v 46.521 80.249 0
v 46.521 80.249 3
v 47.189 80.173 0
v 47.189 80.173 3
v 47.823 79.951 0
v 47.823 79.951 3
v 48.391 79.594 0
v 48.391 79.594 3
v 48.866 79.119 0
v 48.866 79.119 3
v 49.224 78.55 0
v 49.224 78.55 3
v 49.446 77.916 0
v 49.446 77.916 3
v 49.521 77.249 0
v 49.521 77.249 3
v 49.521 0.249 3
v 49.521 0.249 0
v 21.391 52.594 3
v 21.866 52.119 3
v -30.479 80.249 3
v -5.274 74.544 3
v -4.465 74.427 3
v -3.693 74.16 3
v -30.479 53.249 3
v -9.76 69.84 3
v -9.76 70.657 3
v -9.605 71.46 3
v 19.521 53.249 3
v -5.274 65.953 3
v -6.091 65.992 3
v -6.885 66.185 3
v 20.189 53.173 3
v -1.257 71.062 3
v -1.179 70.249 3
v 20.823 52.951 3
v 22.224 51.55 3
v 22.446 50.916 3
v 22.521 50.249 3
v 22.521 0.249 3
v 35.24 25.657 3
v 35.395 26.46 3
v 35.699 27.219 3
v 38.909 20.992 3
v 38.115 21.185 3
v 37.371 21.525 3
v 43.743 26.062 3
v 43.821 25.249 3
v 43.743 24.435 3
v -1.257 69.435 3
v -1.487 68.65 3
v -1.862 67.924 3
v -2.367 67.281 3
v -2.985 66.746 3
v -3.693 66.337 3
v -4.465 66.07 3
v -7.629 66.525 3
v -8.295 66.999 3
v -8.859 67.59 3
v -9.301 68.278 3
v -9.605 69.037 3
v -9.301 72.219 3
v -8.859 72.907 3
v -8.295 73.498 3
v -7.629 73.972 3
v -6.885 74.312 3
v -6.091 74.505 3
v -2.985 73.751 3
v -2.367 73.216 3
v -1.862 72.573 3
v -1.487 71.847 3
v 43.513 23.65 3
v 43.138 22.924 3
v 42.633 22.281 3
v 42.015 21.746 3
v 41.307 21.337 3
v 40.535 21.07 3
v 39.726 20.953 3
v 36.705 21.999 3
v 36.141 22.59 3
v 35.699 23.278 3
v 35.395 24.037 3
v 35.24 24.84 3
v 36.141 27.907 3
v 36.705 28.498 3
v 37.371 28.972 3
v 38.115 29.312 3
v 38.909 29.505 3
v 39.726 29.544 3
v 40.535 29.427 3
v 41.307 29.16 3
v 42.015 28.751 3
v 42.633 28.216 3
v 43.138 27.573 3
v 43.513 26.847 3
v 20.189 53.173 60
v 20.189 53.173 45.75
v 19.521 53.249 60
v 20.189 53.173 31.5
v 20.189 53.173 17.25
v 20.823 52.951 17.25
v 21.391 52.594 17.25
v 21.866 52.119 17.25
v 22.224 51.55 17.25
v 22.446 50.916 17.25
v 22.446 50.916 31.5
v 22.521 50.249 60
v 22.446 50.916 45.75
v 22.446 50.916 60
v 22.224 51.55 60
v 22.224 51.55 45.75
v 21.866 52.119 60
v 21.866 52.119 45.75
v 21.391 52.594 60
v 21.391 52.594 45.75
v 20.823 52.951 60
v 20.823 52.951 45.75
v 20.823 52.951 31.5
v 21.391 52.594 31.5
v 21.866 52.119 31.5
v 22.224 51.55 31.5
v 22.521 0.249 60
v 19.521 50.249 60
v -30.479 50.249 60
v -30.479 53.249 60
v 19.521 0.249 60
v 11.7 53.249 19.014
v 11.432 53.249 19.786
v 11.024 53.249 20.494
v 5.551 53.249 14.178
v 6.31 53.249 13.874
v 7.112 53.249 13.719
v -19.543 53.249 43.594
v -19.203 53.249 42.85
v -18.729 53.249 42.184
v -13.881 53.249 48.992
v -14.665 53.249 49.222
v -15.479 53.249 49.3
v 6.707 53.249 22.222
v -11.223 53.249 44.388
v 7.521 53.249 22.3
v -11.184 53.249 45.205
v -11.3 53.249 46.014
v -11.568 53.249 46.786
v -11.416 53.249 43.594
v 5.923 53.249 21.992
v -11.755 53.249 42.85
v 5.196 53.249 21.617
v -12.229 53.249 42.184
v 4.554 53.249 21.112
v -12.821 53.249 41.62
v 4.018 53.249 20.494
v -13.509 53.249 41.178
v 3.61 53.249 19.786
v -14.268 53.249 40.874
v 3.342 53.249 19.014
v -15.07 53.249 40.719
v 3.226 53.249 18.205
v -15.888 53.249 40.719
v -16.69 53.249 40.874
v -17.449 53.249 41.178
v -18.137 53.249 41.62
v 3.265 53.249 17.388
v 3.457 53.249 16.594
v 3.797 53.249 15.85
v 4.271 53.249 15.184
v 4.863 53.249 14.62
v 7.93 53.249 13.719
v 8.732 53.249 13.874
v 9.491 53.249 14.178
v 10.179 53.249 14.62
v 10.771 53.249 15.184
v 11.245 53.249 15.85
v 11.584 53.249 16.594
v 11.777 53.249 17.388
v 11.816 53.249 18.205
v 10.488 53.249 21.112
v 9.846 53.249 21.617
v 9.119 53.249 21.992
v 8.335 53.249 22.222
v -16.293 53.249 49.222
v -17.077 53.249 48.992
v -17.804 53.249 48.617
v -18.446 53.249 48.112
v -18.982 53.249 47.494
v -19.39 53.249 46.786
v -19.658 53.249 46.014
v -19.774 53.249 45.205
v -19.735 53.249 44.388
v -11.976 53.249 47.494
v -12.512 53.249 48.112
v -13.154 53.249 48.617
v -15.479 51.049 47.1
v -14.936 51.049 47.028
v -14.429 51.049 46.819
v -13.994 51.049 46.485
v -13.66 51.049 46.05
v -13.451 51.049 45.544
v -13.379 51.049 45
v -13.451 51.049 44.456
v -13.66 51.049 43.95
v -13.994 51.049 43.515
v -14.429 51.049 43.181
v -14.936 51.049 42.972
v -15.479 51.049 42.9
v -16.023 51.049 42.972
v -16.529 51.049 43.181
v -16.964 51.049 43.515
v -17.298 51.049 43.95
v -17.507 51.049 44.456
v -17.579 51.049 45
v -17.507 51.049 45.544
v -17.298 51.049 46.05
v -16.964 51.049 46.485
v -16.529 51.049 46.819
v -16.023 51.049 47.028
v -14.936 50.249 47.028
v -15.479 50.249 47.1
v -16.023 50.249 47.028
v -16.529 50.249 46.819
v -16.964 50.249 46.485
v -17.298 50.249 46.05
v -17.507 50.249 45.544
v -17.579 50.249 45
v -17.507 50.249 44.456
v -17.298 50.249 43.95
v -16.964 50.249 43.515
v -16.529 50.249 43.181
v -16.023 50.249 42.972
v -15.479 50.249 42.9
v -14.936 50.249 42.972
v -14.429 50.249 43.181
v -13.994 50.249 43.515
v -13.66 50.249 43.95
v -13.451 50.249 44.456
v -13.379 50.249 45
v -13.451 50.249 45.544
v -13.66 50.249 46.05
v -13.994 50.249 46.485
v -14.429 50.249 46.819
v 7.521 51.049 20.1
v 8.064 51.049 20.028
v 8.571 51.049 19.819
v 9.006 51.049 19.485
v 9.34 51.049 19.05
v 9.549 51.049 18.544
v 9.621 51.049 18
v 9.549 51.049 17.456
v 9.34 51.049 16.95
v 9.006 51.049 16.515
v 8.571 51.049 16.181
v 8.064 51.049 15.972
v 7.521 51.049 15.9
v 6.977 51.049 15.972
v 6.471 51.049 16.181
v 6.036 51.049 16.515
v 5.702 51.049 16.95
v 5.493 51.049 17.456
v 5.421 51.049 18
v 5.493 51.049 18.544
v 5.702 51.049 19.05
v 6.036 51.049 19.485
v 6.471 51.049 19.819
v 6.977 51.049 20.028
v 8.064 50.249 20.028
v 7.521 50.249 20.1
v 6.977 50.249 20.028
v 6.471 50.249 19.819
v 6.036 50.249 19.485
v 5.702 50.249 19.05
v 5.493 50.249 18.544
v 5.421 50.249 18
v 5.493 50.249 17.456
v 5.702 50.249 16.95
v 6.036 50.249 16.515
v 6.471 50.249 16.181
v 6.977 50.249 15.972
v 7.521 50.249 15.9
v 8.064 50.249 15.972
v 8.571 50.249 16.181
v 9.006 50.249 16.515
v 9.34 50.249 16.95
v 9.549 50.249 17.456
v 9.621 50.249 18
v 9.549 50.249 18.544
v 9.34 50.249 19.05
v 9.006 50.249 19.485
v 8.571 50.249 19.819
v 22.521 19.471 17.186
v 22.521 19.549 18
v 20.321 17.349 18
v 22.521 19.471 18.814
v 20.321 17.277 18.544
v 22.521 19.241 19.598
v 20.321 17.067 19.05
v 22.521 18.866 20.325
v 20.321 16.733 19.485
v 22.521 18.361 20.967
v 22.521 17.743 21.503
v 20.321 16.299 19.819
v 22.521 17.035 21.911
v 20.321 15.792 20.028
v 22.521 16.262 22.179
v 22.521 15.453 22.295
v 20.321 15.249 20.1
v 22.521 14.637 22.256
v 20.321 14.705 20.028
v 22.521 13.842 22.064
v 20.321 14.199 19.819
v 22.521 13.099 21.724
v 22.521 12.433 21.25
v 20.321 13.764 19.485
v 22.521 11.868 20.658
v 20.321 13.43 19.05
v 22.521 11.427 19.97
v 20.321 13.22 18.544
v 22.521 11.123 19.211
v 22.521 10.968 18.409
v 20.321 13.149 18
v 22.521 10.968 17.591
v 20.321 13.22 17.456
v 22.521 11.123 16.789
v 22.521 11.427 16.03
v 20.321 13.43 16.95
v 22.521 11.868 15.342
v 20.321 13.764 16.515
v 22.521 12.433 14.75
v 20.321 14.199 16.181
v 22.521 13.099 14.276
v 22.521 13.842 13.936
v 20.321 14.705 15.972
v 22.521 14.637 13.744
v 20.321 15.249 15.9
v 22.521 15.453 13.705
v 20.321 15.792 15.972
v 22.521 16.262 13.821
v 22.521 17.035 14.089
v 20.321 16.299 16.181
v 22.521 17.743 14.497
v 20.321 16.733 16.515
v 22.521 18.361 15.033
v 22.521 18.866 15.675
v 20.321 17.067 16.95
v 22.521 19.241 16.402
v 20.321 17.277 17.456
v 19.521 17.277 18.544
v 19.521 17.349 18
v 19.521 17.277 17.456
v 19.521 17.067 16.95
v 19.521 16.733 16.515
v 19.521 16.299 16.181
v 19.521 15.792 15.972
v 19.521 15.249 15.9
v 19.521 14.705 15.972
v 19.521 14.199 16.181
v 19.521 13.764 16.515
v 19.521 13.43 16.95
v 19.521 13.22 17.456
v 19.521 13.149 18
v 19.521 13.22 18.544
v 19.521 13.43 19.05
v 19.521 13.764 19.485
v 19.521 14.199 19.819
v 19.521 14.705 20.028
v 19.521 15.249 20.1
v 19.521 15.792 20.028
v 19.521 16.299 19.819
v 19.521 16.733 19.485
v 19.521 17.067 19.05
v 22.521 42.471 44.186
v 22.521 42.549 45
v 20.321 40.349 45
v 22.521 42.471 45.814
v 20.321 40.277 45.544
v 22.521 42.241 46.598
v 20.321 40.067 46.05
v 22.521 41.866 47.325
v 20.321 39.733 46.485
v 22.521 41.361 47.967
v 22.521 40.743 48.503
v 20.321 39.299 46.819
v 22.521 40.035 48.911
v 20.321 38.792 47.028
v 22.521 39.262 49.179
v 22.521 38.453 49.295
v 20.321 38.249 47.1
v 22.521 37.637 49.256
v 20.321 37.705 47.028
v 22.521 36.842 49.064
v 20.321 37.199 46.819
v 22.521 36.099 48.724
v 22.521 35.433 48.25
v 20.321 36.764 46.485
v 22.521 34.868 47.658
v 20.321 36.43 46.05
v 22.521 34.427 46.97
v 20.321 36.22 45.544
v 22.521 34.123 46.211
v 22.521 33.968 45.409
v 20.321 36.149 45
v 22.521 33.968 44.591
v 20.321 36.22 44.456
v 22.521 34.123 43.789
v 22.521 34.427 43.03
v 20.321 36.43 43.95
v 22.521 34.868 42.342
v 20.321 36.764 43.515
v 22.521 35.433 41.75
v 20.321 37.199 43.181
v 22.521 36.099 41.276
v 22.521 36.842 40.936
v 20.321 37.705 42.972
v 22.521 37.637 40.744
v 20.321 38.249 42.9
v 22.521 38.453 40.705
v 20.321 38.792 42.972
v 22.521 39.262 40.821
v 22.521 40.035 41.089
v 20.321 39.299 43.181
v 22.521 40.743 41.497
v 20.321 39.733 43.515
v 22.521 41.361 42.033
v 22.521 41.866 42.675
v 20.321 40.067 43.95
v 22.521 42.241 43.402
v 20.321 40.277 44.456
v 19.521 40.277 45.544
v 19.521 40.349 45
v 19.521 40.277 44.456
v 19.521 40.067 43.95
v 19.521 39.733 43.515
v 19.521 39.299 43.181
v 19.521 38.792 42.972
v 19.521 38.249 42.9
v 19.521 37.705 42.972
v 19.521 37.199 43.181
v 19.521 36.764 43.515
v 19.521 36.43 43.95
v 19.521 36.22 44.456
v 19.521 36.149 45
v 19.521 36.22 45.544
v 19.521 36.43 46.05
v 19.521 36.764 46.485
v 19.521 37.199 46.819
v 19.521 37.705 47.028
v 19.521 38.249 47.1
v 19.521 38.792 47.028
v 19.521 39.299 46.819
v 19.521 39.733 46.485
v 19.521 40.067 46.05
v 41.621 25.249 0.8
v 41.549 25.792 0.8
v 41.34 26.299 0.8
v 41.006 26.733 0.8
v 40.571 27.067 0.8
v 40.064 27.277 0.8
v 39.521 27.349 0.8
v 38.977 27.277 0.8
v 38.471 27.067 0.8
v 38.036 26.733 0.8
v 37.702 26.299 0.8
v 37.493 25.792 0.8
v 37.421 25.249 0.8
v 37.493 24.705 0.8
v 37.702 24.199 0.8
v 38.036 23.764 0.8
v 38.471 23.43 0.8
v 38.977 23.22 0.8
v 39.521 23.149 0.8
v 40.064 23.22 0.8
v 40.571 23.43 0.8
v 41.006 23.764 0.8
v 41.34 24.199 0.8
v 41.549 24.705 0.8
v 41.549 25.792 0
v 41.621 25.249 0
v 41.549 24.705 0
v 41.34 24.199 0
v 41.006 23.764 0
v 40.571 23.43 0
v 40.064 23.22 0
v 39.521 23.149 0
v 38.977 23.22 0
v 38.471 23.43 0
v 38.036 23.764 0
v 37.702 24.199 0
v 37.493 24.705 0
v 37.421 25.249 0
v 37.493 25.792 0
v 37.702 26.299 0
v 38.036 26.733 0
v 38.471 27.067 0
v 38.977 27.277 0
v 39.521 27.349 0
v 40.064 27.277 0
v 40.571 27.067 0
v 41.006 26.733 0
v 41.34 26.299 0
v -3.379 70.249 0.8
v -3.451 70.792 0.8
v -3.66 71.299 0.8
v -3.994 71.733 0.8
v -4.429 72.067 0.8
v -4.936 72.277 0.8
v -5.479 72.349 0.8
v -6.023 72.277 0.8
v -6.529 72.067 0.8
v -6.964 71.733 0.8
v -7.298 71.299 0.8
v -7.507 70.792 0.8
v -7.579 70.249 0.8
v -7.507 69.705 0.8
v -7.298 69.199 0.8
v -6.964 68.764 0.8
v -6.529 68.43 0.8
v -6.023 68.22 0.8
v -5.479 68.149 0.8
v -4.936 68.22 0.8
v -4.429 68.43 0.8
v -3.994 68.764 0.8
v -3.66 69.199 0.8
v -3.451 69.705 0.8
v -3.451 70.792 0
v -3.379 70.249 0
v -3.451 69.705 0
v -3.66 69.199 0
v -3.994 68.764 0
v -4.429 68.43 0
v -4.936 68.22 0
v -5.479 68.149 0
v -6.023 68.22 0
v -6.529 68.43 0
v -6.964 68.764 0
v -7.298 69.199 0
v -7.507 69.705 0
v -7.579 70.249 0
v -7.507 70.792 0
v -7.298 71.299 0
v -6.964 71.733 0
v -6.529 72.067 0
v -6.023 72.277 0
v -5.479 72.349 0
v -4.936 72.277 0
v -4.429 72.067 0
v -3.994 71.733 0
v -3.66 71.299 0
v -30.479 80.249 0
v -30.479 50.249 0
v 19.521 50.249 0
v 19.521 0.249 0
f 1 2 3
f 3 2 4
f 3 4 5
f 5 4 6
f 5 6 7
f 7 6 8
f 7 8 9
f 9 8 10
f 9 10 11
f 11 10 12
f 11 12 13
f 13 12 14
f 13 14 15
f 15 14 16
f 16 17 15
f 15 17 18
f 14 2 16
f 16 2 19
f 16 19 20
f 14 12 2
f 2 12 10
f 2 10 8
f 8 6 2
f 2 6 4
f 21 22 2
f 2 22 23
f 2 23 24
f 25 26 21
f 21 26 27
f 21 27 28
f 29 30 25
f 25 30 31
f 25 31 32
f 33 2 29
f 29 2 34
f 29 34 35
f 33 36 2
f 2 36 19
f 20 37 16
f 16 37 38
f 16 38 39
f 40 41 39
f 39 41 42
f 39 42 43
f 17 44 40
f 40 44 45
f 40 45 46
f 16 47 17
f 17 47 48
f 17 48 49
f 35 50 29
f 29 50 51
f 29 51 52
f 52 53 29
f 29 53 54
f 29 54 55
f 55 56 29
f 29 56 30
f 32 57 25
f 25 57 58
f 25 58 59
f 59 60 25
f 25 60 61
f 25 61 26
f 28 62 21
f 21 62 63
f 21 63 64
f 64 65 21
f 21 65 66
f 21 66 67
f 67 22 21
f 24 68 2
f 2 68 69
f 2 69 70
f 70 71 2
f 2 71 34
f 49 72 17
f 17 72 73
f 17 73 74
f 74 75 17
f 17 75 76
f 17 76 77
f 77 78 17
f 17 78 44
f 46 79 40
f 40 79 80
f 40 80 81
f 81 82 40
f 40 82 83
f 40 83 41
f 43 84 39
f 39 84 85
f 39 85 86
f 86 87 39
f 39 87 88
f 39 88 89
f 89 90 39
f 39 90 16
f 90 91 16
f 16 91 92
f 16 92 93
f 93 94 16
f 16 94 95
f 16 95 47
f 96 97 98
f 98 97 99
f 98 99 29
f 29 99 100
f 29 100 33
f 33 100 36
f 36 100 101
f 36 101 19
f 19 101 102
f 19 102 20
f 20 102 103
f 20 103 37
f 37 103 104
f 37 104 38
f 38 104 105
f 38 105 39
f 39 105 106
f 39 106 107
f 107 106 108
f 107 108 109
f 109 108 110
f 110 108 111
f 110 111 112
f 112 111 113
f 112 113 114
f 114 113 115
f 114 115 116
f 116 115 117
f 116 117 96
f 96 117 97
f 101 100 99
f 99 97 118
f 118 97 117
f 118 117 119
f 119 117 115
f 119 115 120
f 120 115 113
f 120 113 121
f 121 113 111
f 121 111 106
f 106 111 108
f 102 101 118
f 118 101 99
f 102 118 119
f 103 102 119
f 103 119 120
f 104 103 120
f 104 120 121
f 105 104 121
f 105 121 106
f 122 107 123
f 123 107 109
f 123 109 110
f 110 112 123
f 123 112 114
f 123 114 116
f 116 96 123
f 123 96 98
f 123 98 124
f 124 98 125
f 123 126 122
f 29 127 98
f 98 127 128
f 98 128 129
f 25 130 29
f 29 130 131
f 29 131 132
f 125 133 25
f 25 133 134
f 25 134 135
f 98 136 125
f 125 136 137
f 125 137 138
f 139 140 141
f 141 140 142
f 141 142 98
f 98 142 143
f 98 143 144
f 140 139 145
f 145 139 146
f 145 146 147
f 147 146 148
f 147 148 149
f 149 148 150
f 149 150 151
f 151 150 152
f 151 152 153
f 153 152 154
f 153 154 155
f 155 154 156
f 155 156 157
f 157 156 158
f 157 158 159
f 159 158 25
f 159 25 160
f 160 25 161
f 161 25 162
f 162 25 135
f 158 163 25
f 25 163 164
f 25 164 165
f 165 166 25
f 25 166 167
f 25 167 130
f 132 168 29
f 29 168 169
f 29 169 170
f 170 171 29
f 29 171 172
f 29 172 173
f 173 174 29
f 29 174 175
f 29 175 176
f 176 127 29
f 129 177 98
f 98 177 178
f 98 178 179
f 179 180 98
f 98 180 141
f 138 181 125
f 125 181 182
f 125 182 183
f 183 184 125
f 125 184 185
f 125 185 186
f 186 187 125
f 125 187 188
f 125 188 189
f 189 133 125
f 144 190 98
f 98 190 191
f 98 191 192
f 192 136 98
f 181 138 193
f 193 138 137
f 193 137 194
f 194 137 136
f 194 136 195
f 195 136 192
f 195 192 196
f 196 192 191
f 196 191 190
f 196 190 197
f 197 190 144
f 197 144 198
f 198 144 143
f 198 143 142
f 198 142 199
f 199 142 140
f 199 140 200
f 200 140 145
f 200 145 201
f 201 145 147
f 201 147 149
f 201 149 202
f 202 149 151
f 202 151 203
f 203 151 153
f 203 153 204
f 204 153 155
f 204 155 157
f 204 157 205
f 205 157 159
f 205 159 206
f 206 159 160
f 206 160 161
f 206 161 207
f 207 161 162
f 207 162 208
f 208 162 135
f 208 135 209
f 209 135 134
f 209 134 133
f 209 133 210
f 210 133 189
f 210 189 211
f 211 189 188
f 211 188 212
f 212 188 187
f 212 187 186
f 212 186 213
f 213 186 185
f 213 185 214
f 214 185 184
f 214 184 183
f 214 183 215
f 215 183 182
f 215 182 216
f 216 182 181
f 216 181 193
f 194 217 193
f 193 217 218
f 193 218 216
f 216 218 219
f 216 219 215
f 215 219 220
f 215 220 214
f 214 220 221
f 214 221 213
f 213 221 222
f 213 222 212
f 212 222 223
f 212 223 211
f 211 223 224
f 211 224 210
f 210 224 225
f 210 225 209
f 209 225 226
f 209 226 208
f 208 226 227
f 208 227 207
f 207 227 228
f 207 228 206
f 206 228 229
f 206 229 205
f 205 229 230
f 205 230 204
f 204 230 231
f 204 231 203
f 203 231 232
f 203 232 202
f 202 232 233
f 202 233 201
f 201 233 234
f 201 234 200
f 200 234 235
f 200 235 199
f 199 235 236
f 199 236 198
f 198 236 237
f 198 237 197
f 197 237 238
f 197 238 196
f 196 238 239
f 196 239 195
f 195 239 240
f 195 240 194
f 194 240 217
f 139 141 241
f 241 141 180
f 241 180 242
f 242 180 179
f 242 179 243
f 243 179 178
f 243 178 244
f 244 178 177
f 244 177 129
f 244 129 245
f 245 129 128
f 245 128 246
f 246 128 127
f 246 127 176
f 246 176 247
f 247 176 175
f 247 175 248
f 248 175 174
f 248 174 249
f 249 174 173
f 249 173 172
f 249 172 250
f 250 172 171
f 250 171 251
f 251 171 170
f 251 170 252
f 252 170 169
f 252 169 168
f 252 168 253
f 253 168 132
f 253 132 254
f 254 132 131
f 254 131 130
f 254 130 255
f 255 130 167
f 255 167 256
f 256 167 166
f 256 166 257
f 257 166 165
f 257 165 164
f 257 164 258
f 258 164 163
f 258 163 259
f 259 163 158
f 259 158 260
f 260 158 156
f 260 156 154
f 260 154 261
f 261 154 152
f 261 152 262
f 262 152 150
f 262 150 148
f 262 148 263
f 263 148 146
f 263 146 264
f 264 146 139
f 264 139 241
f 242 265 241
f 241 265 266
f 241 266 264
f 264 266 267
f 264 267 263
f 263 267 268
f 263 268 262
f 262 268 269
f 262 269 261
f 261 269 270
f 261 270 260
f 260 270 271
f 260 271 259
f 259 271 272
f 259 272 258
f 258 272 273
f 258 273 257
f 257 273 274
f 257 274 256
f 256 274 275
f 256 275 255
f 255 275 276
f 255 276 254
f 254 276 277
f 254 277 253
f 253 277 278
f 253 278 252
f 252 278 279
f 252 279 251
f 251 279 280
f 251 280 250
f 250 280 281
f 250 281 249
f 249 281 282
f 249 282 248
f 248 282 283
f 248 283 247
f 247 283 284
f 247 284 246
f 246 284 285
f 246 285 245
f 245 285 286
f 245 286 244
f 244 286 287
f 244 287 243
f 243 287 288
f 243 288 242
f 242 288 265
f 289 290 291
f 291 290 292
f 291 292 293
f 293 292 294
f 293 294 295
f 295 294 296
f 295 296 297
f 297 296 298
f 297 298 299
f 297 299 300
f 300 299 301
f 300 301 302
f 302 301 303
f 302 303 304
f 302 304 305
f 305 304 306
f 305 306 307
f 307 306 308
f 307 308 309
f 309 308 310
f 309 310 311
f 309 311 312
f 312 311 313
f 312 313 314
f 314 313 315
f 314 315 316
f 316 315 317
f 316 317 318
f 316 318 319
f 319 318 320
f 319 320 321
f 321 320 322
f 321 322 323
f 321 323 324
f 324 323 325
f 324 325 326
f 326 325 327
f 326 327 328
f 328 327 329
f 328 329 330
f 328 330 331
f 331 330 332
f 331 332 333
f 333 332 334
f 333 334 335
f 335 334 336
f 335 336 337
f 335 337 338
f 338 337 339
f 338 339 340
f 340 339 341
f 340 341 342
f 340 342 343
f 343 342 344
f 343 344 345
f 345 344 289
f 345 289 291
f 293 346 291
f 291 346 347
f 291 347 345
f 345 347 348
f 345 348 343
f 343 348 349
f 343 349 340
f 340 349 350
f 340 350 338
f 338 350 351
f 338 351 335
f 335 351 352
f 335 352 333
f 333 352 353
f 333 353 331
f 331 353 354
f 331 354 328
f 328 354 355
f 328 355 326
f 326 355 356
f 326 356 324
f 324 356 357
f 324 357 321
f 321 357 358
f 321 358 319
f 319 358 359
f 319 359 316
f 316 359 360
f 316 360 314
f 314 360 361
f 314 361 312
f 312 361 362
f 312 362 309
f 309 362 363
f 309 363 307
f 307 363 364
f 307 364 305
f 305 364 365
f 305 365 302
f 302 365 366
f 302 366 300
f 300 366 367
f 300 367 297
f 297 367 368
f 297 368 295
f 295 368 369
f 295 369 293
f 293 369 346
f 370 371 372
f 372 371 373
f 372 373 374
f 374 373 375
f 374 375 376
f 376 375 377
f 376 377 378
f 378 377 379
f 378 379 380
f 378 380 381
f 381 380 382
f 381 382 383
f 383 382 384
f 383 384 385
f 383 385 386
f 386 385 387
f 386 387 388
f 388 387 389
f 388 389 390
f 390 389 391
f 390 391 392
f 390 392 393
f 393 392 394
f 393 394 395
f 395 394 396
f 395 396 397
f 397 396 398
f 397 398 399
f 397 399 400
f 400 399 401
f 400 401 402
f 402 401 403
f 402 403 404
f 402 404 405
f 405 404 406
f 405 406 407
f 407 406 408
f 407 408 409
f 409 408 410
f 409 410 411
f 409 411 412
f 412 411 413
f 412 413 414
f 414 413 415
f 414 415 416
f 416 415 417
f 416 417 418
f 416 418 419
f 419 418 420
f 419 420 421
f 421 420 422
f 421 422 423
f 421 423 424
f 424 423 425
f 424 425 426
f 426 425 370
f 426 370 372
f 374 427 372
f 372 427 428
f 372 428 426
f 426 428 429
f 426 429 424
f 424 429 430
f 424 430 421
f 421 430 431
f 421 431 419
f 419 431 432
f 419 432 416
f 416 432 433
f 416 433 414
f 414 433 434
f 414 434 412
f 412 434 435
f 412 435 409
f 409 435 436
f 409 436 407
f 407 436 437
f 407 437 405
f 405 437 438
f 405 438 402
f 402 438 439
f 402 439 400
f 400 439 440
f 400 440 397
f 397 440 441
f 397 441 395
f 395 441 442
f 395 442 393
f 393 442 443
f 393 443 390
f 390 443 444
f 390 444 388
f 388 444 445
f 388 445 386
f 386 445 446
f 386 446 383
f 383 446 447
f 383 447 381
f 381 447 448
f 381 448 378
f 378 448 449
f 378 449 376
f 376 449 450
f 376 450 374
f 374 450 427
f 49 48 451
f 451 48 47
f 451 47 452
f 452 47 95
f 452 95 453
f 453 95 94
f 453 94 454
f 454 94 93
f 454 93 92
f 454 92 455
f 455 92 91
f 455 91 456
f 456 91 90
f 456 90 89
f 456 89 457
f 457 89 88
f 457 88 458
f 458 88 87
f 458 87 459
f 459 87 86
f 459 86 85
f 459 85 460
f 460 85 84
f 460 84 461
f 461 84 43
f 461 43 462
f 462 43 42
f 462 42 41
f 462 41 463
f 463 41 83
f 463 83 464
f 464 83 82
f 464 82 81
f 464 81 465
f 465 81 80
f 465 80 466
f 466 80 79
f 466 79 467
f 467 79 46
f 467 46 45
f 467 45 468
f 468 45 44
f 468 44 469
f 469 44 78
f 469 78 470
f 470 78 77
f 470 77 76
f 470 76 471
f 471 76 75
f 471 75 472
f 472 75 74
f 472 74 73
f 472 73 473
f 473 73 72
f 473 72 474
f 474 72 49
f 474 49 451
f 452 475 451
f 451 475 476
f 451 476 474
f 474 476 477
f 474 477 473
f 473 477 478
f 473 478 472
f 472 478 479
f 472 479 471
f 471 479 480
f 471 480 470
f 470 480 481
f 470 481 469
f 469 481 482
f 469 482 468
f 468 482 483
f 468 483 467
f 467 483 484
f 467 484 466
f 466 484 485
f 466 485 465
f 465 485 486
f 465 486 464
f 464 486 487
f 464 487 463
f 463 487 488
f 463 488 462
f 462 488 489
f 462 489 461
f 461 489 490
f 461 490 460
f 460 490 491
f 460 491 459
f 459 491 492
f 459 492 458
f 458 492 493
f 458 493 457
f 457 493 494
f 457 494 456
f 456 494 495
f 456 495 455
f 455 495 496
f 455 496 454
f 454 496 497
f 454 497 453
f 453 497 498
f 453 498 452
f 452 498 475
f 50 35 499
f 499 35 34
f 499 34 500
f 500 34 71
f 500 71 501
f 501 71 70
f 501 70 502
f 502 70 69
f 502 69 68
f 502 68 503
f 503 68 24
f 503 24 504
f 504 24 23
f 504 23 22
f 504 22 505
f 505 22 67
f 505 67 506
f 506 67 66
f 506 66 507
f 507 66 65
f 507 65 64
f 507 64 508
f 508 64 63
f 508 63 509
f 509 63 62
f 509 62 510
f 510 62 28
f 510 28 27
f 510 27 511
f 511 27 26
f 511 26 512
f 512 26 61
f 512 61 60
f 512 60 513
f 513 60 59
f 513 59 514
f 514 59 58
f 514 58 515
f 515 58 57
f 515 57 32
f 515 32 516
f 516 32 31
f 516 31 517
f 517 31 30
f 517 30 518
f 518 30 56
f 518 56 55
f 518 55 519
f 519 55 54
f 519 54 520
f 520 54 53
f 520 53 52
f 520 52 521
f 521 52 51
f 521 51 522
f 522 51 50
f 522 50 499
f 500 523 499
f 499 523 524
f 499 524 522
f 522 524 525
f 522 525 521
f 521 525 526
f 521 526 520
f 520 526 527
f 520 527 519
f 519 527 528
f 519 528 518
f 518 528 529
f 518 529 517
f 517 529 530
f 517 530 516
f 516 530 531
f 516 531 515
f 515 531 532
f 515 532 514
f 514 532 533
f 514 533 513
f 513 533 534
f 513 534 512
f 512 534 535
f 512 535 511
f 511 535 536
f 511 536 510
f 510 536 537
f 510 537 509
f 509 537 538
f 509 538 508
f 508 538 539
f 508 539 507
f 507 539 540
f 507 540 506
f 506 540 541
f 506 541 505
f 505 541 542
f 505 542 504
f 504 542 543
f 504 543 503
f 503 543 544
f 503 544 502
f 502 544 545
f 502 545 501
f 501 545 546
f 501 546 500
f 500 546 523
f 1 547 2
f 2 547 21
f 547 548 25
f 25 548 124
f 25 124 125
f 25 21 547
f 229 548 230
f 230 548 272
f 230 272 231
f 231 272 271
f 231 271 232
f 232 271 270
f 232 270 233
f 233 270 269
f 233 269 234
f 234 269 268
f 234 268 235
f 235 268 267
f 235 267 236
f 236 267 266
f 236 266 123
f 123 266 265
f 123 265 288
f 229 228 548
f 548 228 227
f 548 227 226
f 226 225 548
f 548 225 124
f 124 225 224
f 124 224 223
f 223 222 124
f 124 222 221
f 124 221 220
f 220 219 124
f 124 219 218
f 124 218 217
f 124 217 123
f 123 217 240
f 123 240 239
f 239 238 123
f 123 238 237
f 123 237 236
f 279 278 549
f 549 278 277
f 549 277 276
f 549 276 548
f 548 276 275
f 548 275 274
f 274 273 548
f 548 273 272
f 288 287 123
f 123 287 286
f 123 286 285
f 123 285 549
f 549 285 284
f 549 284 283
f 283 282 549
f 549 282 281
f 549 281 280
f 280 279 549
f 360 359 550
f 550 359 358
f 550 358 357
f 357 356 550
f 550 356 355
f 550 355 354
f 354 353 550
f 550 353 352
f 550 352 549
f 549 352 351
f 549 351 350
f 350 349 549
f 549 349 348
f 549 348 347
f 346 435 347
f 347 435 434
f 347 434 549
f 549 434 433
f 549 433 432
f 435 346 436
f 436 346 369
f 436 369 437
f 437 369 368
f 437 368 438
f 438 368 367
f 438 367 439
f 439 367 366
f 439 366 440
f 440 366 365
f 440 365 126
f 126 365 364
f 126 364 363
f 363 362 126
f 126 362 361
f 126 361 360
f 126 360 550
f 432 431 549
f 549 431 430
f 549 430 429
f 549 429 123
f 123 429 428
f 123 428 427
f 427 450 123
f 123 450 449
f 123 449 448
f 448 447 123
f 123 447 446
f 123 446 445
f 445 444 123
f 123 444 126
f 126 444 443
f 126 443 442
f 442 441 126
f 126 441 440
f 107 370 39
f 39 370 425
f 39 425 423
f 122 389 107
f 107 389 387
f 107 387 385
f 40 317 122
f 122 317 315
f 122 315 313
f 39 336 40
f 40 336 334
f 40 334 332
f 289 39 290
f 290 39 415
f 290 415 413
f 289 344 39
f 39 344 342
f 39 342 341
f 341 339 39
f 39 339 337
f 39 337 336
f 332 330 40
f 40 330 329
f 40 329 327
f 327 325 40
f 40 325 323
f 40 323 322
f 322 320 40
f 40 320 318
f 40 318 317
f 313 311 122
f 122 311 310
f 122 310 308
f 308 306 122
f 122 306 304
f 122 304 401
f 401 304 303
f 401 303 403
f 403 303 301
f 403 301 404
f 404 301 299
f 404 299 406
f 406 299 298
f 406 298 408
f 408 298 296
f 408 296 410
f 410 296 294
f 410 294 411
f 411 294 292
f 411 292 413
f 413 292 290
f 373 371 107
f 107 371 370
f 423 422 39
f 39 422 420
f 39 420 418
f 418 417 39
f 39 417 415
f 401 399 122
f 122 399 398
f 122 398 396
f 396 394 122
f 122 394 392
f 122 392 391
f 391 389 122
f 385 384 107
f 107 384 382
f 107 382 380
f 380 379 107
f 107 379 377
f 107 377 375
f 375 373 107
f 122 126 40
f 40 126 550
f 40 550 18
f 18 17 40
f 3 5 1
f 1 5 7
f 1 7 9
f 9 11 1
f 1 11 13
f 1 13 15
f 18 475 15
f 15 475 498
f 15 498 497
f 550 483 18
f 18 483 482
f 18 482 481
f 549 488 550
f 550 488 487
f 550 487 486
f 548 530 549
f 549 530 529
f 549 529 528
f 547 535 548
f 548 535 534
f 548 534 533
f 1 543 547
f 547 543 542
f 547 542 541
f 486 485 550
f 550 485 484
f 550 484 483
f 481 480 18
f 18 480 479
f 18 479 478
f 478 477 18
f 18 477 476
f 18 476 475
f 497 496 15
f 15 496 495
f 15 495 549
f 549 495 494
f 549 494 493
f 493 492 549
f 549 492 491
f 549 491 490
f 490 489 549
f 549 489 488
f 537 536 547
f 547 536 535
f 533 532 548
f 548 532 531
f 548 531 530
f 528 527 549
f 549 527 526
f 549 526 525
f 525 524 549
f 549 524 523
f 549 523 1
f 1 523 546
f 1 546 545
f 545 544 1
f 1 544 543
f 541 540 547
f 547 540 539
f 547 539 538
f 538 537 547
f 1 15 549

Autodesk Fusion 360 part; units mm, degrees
sketch "Sketch1" plane through (0, 0, 0) normal (0, 0, 1) x (1, 0, 0)
  line L0 (-30.479, 50.2485) -> (19.521, 50.2485)
  line L1 (19.521, 50.2485) -> (19.521, 0.2485)
  line L2 (19.521, 0.2485) -> (49.521, 0.2485)
  line L3 (-30.479, 50.2485) -> (-30.479, 80.2485)
  line L4 (-30.479, 80.2485) -> (49.521, 80.2485)
  line L5 (49.521, 80.2485) -> (49.521, 0.2485)
  line L6 (19.521, 0.2485) -> (22.521, 0.2485)
  line L7 (-30.479, 50.2485) -> (-30.479, 53.2485)
  line L8 (-30.479, 53.2485) -> (22.521, 53.2485)
  line L9 (22.521, 53.2485) -> (22.521, 0.2485)
  dimension "d1" = 50
  dimension "d2" = 50
  dimension "d3" = 30
  dimension "d4" = 30
  dimension "d5" = 80
  dimension "d6" = 3
  dimension "d7" = 3
  dimension "d8" = 53
extrude "Extrude1" add sketch "Sketch1" along normal blind 3 makes body 1
extrude "Extrude2" add sketch "Sketch1" along normal blind 60 separate body contours L0 L1 L2 L3 L6 L7 L8 L9 makes body 2
combine "Combine1" operation add target body 2 tool bodies 1
sketch "Sketch2" plane through (0, 0, 3) normal (0, 0, 1) x (-1, 0, 0)
  line L0 (30.479, -53.2485) -> (-22.521, -53.2485)
  line L1 (-22.521, -53.2485) -> (-22.521, -0.2485)
  line L2 (-22.521, -0.2485) -> (-49.521, -0.2485)
  line L3 (-49.521, -0.2485) -> (-49.521, -80.2485)
  line L4 (-49.521, -80.2485) -> (30.479, -80.2485)
  line L5 (30.479, -80.2485) -> (30.479, -53.2485)
  line L6 (-49.521, -0.2485) -> (-39.521, -0.2485)
  line L7 (-39.521, -0.2485) -> (-39.521, -25.2485)
  line L8 (30.479, -80.2485) -> (30.479, -70.2485)
  line L9 (30.479, -70.2485) -> (5.479, -70.2485)
  dimension "d13" = 10
  dimension "d14" = 25
  dimension "d15" = 10
  dimension "d16" = 25
hole "Hole1" at (39.521, 25.2485, 3) at (-5.479, 70.2485, 3) direction (0, 0, -1) diameter 4.2 end through all countersink diameter 8.6 countersink angle 90 bodies 2 2
sketch "Sketch3" plane through (22.521, 0, 0) normal (1, 0, 0) x (0, 1, 0)
  line L0 (0.2485, 3) -> (53.2485, 3)
  line L1 (53.2485, 3) -> (53.2485, 60)
  line L2 (53.2485, 60) -> (0.2485, 60)
  line L3 (0.2485, 60) -> (0.2485, 3)
  line L4 (0.2485, 3) -> (0.2485, 18)
  line L5 (0.2485, 18) -> (15.2485, 18)
  line L6 (53.2485, 60) -> (53.2485, 45)
  line L7 (53.2485, 45) -> (38.2485, 45)
  dimension "d22" = 15
  dimension "d23" = 15
  dimension "d24" = 15
  dimension "d25" = 15
hole "Hole2" at (22.521, 15.2485, 18) at (22.521, 38.2485, 45) direction (-1, 0, 0) diameter 4.2 end through all countersink diameter 8.6 countersink angle 90 bodies 2 2
sketch "Sketch4" plane through (0, 53.2485, 0) normal (0, 1, 0) x (-1, 0, 0)
  line L0 (-22.521, 3) -> (30.479, 3)
  line L1 (30.479, 3) -> (30.479, 60)
  line L2 (30.479, 60) -> (-22.521, 60)
  line L3 (-22.521, 60) -> (-22.521, 3)
  line L4 (-22.521, 3) -> (-22.521, 18)
  line L5 (-22.521, 18) -> (-7.521, 18)
  line L6 (30.479, 60) -> (30.479, 45)
  line L7 (30.479, 45) -> (15.479, 45)
  dimension "d31" = 15
  dimension "d32" = 15
  dimension "d33" = 15
  dimension "d34" = 15
hole "Hole3" at (-15.479, 53.2485, 45) at (7.521, 53.2485, 18) direction (0, -1, 0) diameter 4.2 end through all countersink diameter 8.6 countersink angle 90 bodies 2 2
fillet "Fillet1" radius 3 2 edges at (22.521, 53.2485, 31.5) (49.521, 80.2485, 1.5) on bodies 2
